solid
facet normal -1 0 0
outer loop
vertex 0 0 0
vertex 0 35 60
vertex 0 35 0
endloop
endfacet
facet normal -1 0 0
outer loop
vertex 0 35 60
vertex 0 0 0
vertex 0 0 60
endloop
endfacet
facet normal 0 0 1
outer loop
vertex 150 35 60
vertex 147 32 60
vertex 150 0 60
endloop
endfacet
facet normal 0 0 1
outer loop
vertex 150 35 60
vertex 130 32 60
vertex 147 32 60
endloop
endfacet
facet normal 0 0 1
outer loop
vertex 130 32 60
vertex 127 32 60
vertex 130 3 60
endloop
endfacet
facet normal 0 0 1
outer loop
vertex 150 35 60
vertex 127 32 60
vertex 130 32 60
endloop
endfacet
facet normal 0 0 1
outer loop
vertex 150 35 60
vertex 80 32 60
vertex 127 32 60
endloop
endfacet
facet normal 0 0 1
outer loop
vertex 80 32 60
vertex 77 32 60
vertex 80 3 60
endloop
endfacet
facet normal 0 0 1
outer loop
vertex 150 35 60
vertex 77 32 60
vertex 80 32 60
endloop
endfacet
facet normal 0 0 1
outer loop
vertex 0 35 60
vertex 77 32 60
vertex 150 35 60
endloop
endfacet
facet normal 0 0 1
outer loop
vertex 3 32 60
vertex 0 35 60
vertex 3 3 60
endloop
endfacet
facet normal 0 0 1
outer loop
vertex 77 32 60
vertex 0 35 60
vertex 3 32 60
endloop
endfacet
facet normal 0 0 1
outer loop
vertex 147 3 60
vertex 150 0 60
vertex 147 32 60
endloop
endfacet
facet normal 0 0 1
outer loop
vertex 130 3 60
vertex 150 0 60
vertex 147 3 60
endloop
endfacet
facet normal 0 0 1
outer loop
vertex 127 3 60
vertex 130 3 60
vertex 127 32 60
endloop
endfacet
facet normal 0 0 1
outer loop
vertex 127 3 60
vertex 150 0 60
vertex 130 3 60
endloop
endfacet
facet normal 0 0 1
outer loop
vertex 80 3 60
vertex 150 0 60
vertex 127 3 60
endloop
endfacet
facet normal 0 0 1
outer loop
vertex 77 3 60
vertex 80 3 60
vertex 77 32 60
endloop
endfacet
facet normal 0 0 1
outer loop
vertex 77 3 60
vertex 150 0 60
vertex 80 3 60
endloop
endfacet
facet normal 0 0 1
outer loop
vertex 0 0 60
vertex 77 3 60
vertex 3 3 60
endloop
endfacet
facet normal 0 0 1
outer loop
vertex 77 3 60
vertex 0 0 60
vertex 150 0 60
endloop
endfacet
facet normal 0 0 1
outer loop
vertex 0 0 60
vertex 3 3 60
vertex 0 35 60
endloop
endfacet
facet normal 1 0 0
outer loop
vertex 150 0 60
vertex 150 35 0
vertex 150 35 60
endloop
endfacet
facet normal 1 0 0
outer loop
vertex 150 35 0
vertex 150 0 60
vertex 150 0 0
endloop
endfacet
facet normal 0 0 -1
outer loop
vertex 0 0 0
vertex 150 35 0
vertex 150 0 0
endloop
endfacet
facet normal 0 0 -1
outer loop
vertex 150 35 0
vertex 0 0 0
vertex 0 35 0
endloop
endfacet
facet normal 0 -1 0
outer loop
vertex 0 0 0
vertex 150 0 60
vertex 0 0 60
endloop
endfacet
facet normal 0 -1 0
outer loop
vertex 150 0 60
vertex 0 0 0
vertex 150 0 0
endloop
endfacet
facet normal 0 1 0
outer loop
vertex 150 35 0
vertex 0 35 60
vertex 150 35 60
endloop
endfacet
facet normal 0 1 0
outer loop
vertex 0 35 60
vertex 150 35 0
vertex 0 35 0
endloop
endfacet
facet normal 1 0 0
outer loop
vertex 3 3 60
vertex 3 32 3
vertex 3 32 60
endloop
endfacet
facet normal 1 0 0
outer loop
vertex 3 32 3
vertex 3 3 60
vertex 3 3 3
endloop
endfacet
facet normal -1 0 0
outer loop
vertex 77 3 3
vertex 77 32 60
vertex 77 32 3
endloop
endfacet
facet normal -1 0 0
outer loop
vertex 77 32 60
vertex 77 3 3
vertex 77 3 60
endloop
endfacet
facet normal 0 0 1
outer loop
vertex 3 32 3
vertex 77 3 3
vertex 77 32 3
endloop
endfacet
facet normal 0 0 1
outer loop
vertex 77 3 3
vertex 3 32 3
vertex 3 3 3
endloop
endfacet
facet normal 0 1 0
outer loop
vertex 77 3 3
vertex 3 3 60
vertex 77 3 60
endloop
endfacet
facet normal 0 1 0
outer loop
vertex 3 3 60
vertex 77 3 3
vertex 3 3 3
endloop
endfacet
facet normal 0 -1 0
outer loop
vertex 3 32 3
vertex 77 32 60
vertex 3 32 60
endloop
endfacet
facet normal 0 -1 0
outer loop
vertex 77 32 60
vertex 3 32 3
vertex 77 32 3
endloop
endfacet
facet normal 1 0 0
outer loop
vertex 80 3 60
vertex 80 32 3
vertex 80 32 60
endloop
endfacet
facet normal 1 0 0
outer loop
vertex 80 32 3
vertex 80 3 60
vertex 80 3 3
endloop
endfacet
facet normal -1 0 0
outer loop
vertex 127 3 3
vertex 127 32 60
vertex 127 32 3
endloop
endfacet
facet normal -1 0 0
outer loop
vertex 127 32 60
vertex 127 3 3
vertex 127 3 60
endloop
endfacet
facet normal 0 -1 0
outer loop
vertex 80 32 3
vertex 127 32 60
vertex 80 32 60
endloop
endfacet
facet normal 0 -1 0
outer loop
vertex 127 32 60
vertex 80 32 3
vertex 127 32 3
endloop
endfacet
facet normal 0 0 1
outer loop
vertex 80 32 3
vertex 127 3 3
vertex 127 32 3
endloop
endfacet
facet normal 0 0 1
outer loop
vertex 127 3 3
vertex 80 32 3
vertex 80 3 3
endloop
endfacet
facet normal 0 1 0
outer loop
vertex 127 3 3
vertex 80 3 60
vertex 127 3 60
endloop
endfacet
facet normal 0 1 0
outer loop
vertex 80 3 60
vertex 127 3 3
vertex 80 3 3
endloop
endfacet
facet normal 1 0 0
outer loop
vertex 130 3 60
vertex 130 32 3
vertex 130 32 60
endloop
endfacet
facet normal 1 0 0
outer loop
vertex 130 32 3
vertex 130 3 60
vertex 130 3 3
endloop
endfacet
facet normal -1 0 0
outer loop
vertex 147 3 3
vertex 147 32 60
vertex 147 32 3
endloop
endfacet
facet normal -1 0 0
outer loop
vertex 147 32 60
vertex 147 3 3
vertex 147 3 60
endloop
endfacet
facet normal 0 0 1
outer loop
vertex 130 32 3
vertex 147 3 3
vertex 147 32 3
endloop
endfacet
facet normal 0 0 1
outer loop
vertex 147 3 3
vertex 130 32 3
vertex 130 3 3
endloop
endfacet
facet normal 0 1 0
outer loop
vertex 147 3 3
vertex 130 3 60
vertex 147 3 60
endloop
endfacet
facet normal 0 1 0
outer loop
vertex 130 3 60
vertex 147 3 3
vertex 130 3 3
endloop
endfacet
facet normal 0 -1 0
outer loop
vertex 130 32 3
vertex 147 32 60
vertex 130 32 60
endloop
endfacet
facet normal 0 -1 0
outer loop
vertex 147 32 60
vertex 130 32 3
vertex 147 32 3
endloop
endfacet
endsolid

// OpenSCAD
wall_thickness=3;
floor_thickness=wall_thickness;

total_height = 60;

box1_width=80-2*wall_thickness;
box2_width=50-wall_thickness;
box3_width=20-wall_thickness;
total_width=box1_width+box2_width+box3_width+4*wall_thickness;

box_length=35-2*wall_thickness;
total_length=box_length+2*wall_thickness;

echo("Total w=", total_width, " and l=", total_length);

difference(){
    cube([total_width,total_length,total_height]);
    //box1   
    translate([wall_thickness,wall_thickness,floor_thickness])cube([box1_width,box_length,total_height]);
    //box2
    translate([wall_thickness*2+box1_width,wall_thickness,floor_thickness])cube([box2_width,box_length,total_height]);
    //box3
    translate([wall_thickness*3+box1_width+box2_width,wall_thickness,floor_thickness])cube([box3_width,box_length,total_height]);
}
